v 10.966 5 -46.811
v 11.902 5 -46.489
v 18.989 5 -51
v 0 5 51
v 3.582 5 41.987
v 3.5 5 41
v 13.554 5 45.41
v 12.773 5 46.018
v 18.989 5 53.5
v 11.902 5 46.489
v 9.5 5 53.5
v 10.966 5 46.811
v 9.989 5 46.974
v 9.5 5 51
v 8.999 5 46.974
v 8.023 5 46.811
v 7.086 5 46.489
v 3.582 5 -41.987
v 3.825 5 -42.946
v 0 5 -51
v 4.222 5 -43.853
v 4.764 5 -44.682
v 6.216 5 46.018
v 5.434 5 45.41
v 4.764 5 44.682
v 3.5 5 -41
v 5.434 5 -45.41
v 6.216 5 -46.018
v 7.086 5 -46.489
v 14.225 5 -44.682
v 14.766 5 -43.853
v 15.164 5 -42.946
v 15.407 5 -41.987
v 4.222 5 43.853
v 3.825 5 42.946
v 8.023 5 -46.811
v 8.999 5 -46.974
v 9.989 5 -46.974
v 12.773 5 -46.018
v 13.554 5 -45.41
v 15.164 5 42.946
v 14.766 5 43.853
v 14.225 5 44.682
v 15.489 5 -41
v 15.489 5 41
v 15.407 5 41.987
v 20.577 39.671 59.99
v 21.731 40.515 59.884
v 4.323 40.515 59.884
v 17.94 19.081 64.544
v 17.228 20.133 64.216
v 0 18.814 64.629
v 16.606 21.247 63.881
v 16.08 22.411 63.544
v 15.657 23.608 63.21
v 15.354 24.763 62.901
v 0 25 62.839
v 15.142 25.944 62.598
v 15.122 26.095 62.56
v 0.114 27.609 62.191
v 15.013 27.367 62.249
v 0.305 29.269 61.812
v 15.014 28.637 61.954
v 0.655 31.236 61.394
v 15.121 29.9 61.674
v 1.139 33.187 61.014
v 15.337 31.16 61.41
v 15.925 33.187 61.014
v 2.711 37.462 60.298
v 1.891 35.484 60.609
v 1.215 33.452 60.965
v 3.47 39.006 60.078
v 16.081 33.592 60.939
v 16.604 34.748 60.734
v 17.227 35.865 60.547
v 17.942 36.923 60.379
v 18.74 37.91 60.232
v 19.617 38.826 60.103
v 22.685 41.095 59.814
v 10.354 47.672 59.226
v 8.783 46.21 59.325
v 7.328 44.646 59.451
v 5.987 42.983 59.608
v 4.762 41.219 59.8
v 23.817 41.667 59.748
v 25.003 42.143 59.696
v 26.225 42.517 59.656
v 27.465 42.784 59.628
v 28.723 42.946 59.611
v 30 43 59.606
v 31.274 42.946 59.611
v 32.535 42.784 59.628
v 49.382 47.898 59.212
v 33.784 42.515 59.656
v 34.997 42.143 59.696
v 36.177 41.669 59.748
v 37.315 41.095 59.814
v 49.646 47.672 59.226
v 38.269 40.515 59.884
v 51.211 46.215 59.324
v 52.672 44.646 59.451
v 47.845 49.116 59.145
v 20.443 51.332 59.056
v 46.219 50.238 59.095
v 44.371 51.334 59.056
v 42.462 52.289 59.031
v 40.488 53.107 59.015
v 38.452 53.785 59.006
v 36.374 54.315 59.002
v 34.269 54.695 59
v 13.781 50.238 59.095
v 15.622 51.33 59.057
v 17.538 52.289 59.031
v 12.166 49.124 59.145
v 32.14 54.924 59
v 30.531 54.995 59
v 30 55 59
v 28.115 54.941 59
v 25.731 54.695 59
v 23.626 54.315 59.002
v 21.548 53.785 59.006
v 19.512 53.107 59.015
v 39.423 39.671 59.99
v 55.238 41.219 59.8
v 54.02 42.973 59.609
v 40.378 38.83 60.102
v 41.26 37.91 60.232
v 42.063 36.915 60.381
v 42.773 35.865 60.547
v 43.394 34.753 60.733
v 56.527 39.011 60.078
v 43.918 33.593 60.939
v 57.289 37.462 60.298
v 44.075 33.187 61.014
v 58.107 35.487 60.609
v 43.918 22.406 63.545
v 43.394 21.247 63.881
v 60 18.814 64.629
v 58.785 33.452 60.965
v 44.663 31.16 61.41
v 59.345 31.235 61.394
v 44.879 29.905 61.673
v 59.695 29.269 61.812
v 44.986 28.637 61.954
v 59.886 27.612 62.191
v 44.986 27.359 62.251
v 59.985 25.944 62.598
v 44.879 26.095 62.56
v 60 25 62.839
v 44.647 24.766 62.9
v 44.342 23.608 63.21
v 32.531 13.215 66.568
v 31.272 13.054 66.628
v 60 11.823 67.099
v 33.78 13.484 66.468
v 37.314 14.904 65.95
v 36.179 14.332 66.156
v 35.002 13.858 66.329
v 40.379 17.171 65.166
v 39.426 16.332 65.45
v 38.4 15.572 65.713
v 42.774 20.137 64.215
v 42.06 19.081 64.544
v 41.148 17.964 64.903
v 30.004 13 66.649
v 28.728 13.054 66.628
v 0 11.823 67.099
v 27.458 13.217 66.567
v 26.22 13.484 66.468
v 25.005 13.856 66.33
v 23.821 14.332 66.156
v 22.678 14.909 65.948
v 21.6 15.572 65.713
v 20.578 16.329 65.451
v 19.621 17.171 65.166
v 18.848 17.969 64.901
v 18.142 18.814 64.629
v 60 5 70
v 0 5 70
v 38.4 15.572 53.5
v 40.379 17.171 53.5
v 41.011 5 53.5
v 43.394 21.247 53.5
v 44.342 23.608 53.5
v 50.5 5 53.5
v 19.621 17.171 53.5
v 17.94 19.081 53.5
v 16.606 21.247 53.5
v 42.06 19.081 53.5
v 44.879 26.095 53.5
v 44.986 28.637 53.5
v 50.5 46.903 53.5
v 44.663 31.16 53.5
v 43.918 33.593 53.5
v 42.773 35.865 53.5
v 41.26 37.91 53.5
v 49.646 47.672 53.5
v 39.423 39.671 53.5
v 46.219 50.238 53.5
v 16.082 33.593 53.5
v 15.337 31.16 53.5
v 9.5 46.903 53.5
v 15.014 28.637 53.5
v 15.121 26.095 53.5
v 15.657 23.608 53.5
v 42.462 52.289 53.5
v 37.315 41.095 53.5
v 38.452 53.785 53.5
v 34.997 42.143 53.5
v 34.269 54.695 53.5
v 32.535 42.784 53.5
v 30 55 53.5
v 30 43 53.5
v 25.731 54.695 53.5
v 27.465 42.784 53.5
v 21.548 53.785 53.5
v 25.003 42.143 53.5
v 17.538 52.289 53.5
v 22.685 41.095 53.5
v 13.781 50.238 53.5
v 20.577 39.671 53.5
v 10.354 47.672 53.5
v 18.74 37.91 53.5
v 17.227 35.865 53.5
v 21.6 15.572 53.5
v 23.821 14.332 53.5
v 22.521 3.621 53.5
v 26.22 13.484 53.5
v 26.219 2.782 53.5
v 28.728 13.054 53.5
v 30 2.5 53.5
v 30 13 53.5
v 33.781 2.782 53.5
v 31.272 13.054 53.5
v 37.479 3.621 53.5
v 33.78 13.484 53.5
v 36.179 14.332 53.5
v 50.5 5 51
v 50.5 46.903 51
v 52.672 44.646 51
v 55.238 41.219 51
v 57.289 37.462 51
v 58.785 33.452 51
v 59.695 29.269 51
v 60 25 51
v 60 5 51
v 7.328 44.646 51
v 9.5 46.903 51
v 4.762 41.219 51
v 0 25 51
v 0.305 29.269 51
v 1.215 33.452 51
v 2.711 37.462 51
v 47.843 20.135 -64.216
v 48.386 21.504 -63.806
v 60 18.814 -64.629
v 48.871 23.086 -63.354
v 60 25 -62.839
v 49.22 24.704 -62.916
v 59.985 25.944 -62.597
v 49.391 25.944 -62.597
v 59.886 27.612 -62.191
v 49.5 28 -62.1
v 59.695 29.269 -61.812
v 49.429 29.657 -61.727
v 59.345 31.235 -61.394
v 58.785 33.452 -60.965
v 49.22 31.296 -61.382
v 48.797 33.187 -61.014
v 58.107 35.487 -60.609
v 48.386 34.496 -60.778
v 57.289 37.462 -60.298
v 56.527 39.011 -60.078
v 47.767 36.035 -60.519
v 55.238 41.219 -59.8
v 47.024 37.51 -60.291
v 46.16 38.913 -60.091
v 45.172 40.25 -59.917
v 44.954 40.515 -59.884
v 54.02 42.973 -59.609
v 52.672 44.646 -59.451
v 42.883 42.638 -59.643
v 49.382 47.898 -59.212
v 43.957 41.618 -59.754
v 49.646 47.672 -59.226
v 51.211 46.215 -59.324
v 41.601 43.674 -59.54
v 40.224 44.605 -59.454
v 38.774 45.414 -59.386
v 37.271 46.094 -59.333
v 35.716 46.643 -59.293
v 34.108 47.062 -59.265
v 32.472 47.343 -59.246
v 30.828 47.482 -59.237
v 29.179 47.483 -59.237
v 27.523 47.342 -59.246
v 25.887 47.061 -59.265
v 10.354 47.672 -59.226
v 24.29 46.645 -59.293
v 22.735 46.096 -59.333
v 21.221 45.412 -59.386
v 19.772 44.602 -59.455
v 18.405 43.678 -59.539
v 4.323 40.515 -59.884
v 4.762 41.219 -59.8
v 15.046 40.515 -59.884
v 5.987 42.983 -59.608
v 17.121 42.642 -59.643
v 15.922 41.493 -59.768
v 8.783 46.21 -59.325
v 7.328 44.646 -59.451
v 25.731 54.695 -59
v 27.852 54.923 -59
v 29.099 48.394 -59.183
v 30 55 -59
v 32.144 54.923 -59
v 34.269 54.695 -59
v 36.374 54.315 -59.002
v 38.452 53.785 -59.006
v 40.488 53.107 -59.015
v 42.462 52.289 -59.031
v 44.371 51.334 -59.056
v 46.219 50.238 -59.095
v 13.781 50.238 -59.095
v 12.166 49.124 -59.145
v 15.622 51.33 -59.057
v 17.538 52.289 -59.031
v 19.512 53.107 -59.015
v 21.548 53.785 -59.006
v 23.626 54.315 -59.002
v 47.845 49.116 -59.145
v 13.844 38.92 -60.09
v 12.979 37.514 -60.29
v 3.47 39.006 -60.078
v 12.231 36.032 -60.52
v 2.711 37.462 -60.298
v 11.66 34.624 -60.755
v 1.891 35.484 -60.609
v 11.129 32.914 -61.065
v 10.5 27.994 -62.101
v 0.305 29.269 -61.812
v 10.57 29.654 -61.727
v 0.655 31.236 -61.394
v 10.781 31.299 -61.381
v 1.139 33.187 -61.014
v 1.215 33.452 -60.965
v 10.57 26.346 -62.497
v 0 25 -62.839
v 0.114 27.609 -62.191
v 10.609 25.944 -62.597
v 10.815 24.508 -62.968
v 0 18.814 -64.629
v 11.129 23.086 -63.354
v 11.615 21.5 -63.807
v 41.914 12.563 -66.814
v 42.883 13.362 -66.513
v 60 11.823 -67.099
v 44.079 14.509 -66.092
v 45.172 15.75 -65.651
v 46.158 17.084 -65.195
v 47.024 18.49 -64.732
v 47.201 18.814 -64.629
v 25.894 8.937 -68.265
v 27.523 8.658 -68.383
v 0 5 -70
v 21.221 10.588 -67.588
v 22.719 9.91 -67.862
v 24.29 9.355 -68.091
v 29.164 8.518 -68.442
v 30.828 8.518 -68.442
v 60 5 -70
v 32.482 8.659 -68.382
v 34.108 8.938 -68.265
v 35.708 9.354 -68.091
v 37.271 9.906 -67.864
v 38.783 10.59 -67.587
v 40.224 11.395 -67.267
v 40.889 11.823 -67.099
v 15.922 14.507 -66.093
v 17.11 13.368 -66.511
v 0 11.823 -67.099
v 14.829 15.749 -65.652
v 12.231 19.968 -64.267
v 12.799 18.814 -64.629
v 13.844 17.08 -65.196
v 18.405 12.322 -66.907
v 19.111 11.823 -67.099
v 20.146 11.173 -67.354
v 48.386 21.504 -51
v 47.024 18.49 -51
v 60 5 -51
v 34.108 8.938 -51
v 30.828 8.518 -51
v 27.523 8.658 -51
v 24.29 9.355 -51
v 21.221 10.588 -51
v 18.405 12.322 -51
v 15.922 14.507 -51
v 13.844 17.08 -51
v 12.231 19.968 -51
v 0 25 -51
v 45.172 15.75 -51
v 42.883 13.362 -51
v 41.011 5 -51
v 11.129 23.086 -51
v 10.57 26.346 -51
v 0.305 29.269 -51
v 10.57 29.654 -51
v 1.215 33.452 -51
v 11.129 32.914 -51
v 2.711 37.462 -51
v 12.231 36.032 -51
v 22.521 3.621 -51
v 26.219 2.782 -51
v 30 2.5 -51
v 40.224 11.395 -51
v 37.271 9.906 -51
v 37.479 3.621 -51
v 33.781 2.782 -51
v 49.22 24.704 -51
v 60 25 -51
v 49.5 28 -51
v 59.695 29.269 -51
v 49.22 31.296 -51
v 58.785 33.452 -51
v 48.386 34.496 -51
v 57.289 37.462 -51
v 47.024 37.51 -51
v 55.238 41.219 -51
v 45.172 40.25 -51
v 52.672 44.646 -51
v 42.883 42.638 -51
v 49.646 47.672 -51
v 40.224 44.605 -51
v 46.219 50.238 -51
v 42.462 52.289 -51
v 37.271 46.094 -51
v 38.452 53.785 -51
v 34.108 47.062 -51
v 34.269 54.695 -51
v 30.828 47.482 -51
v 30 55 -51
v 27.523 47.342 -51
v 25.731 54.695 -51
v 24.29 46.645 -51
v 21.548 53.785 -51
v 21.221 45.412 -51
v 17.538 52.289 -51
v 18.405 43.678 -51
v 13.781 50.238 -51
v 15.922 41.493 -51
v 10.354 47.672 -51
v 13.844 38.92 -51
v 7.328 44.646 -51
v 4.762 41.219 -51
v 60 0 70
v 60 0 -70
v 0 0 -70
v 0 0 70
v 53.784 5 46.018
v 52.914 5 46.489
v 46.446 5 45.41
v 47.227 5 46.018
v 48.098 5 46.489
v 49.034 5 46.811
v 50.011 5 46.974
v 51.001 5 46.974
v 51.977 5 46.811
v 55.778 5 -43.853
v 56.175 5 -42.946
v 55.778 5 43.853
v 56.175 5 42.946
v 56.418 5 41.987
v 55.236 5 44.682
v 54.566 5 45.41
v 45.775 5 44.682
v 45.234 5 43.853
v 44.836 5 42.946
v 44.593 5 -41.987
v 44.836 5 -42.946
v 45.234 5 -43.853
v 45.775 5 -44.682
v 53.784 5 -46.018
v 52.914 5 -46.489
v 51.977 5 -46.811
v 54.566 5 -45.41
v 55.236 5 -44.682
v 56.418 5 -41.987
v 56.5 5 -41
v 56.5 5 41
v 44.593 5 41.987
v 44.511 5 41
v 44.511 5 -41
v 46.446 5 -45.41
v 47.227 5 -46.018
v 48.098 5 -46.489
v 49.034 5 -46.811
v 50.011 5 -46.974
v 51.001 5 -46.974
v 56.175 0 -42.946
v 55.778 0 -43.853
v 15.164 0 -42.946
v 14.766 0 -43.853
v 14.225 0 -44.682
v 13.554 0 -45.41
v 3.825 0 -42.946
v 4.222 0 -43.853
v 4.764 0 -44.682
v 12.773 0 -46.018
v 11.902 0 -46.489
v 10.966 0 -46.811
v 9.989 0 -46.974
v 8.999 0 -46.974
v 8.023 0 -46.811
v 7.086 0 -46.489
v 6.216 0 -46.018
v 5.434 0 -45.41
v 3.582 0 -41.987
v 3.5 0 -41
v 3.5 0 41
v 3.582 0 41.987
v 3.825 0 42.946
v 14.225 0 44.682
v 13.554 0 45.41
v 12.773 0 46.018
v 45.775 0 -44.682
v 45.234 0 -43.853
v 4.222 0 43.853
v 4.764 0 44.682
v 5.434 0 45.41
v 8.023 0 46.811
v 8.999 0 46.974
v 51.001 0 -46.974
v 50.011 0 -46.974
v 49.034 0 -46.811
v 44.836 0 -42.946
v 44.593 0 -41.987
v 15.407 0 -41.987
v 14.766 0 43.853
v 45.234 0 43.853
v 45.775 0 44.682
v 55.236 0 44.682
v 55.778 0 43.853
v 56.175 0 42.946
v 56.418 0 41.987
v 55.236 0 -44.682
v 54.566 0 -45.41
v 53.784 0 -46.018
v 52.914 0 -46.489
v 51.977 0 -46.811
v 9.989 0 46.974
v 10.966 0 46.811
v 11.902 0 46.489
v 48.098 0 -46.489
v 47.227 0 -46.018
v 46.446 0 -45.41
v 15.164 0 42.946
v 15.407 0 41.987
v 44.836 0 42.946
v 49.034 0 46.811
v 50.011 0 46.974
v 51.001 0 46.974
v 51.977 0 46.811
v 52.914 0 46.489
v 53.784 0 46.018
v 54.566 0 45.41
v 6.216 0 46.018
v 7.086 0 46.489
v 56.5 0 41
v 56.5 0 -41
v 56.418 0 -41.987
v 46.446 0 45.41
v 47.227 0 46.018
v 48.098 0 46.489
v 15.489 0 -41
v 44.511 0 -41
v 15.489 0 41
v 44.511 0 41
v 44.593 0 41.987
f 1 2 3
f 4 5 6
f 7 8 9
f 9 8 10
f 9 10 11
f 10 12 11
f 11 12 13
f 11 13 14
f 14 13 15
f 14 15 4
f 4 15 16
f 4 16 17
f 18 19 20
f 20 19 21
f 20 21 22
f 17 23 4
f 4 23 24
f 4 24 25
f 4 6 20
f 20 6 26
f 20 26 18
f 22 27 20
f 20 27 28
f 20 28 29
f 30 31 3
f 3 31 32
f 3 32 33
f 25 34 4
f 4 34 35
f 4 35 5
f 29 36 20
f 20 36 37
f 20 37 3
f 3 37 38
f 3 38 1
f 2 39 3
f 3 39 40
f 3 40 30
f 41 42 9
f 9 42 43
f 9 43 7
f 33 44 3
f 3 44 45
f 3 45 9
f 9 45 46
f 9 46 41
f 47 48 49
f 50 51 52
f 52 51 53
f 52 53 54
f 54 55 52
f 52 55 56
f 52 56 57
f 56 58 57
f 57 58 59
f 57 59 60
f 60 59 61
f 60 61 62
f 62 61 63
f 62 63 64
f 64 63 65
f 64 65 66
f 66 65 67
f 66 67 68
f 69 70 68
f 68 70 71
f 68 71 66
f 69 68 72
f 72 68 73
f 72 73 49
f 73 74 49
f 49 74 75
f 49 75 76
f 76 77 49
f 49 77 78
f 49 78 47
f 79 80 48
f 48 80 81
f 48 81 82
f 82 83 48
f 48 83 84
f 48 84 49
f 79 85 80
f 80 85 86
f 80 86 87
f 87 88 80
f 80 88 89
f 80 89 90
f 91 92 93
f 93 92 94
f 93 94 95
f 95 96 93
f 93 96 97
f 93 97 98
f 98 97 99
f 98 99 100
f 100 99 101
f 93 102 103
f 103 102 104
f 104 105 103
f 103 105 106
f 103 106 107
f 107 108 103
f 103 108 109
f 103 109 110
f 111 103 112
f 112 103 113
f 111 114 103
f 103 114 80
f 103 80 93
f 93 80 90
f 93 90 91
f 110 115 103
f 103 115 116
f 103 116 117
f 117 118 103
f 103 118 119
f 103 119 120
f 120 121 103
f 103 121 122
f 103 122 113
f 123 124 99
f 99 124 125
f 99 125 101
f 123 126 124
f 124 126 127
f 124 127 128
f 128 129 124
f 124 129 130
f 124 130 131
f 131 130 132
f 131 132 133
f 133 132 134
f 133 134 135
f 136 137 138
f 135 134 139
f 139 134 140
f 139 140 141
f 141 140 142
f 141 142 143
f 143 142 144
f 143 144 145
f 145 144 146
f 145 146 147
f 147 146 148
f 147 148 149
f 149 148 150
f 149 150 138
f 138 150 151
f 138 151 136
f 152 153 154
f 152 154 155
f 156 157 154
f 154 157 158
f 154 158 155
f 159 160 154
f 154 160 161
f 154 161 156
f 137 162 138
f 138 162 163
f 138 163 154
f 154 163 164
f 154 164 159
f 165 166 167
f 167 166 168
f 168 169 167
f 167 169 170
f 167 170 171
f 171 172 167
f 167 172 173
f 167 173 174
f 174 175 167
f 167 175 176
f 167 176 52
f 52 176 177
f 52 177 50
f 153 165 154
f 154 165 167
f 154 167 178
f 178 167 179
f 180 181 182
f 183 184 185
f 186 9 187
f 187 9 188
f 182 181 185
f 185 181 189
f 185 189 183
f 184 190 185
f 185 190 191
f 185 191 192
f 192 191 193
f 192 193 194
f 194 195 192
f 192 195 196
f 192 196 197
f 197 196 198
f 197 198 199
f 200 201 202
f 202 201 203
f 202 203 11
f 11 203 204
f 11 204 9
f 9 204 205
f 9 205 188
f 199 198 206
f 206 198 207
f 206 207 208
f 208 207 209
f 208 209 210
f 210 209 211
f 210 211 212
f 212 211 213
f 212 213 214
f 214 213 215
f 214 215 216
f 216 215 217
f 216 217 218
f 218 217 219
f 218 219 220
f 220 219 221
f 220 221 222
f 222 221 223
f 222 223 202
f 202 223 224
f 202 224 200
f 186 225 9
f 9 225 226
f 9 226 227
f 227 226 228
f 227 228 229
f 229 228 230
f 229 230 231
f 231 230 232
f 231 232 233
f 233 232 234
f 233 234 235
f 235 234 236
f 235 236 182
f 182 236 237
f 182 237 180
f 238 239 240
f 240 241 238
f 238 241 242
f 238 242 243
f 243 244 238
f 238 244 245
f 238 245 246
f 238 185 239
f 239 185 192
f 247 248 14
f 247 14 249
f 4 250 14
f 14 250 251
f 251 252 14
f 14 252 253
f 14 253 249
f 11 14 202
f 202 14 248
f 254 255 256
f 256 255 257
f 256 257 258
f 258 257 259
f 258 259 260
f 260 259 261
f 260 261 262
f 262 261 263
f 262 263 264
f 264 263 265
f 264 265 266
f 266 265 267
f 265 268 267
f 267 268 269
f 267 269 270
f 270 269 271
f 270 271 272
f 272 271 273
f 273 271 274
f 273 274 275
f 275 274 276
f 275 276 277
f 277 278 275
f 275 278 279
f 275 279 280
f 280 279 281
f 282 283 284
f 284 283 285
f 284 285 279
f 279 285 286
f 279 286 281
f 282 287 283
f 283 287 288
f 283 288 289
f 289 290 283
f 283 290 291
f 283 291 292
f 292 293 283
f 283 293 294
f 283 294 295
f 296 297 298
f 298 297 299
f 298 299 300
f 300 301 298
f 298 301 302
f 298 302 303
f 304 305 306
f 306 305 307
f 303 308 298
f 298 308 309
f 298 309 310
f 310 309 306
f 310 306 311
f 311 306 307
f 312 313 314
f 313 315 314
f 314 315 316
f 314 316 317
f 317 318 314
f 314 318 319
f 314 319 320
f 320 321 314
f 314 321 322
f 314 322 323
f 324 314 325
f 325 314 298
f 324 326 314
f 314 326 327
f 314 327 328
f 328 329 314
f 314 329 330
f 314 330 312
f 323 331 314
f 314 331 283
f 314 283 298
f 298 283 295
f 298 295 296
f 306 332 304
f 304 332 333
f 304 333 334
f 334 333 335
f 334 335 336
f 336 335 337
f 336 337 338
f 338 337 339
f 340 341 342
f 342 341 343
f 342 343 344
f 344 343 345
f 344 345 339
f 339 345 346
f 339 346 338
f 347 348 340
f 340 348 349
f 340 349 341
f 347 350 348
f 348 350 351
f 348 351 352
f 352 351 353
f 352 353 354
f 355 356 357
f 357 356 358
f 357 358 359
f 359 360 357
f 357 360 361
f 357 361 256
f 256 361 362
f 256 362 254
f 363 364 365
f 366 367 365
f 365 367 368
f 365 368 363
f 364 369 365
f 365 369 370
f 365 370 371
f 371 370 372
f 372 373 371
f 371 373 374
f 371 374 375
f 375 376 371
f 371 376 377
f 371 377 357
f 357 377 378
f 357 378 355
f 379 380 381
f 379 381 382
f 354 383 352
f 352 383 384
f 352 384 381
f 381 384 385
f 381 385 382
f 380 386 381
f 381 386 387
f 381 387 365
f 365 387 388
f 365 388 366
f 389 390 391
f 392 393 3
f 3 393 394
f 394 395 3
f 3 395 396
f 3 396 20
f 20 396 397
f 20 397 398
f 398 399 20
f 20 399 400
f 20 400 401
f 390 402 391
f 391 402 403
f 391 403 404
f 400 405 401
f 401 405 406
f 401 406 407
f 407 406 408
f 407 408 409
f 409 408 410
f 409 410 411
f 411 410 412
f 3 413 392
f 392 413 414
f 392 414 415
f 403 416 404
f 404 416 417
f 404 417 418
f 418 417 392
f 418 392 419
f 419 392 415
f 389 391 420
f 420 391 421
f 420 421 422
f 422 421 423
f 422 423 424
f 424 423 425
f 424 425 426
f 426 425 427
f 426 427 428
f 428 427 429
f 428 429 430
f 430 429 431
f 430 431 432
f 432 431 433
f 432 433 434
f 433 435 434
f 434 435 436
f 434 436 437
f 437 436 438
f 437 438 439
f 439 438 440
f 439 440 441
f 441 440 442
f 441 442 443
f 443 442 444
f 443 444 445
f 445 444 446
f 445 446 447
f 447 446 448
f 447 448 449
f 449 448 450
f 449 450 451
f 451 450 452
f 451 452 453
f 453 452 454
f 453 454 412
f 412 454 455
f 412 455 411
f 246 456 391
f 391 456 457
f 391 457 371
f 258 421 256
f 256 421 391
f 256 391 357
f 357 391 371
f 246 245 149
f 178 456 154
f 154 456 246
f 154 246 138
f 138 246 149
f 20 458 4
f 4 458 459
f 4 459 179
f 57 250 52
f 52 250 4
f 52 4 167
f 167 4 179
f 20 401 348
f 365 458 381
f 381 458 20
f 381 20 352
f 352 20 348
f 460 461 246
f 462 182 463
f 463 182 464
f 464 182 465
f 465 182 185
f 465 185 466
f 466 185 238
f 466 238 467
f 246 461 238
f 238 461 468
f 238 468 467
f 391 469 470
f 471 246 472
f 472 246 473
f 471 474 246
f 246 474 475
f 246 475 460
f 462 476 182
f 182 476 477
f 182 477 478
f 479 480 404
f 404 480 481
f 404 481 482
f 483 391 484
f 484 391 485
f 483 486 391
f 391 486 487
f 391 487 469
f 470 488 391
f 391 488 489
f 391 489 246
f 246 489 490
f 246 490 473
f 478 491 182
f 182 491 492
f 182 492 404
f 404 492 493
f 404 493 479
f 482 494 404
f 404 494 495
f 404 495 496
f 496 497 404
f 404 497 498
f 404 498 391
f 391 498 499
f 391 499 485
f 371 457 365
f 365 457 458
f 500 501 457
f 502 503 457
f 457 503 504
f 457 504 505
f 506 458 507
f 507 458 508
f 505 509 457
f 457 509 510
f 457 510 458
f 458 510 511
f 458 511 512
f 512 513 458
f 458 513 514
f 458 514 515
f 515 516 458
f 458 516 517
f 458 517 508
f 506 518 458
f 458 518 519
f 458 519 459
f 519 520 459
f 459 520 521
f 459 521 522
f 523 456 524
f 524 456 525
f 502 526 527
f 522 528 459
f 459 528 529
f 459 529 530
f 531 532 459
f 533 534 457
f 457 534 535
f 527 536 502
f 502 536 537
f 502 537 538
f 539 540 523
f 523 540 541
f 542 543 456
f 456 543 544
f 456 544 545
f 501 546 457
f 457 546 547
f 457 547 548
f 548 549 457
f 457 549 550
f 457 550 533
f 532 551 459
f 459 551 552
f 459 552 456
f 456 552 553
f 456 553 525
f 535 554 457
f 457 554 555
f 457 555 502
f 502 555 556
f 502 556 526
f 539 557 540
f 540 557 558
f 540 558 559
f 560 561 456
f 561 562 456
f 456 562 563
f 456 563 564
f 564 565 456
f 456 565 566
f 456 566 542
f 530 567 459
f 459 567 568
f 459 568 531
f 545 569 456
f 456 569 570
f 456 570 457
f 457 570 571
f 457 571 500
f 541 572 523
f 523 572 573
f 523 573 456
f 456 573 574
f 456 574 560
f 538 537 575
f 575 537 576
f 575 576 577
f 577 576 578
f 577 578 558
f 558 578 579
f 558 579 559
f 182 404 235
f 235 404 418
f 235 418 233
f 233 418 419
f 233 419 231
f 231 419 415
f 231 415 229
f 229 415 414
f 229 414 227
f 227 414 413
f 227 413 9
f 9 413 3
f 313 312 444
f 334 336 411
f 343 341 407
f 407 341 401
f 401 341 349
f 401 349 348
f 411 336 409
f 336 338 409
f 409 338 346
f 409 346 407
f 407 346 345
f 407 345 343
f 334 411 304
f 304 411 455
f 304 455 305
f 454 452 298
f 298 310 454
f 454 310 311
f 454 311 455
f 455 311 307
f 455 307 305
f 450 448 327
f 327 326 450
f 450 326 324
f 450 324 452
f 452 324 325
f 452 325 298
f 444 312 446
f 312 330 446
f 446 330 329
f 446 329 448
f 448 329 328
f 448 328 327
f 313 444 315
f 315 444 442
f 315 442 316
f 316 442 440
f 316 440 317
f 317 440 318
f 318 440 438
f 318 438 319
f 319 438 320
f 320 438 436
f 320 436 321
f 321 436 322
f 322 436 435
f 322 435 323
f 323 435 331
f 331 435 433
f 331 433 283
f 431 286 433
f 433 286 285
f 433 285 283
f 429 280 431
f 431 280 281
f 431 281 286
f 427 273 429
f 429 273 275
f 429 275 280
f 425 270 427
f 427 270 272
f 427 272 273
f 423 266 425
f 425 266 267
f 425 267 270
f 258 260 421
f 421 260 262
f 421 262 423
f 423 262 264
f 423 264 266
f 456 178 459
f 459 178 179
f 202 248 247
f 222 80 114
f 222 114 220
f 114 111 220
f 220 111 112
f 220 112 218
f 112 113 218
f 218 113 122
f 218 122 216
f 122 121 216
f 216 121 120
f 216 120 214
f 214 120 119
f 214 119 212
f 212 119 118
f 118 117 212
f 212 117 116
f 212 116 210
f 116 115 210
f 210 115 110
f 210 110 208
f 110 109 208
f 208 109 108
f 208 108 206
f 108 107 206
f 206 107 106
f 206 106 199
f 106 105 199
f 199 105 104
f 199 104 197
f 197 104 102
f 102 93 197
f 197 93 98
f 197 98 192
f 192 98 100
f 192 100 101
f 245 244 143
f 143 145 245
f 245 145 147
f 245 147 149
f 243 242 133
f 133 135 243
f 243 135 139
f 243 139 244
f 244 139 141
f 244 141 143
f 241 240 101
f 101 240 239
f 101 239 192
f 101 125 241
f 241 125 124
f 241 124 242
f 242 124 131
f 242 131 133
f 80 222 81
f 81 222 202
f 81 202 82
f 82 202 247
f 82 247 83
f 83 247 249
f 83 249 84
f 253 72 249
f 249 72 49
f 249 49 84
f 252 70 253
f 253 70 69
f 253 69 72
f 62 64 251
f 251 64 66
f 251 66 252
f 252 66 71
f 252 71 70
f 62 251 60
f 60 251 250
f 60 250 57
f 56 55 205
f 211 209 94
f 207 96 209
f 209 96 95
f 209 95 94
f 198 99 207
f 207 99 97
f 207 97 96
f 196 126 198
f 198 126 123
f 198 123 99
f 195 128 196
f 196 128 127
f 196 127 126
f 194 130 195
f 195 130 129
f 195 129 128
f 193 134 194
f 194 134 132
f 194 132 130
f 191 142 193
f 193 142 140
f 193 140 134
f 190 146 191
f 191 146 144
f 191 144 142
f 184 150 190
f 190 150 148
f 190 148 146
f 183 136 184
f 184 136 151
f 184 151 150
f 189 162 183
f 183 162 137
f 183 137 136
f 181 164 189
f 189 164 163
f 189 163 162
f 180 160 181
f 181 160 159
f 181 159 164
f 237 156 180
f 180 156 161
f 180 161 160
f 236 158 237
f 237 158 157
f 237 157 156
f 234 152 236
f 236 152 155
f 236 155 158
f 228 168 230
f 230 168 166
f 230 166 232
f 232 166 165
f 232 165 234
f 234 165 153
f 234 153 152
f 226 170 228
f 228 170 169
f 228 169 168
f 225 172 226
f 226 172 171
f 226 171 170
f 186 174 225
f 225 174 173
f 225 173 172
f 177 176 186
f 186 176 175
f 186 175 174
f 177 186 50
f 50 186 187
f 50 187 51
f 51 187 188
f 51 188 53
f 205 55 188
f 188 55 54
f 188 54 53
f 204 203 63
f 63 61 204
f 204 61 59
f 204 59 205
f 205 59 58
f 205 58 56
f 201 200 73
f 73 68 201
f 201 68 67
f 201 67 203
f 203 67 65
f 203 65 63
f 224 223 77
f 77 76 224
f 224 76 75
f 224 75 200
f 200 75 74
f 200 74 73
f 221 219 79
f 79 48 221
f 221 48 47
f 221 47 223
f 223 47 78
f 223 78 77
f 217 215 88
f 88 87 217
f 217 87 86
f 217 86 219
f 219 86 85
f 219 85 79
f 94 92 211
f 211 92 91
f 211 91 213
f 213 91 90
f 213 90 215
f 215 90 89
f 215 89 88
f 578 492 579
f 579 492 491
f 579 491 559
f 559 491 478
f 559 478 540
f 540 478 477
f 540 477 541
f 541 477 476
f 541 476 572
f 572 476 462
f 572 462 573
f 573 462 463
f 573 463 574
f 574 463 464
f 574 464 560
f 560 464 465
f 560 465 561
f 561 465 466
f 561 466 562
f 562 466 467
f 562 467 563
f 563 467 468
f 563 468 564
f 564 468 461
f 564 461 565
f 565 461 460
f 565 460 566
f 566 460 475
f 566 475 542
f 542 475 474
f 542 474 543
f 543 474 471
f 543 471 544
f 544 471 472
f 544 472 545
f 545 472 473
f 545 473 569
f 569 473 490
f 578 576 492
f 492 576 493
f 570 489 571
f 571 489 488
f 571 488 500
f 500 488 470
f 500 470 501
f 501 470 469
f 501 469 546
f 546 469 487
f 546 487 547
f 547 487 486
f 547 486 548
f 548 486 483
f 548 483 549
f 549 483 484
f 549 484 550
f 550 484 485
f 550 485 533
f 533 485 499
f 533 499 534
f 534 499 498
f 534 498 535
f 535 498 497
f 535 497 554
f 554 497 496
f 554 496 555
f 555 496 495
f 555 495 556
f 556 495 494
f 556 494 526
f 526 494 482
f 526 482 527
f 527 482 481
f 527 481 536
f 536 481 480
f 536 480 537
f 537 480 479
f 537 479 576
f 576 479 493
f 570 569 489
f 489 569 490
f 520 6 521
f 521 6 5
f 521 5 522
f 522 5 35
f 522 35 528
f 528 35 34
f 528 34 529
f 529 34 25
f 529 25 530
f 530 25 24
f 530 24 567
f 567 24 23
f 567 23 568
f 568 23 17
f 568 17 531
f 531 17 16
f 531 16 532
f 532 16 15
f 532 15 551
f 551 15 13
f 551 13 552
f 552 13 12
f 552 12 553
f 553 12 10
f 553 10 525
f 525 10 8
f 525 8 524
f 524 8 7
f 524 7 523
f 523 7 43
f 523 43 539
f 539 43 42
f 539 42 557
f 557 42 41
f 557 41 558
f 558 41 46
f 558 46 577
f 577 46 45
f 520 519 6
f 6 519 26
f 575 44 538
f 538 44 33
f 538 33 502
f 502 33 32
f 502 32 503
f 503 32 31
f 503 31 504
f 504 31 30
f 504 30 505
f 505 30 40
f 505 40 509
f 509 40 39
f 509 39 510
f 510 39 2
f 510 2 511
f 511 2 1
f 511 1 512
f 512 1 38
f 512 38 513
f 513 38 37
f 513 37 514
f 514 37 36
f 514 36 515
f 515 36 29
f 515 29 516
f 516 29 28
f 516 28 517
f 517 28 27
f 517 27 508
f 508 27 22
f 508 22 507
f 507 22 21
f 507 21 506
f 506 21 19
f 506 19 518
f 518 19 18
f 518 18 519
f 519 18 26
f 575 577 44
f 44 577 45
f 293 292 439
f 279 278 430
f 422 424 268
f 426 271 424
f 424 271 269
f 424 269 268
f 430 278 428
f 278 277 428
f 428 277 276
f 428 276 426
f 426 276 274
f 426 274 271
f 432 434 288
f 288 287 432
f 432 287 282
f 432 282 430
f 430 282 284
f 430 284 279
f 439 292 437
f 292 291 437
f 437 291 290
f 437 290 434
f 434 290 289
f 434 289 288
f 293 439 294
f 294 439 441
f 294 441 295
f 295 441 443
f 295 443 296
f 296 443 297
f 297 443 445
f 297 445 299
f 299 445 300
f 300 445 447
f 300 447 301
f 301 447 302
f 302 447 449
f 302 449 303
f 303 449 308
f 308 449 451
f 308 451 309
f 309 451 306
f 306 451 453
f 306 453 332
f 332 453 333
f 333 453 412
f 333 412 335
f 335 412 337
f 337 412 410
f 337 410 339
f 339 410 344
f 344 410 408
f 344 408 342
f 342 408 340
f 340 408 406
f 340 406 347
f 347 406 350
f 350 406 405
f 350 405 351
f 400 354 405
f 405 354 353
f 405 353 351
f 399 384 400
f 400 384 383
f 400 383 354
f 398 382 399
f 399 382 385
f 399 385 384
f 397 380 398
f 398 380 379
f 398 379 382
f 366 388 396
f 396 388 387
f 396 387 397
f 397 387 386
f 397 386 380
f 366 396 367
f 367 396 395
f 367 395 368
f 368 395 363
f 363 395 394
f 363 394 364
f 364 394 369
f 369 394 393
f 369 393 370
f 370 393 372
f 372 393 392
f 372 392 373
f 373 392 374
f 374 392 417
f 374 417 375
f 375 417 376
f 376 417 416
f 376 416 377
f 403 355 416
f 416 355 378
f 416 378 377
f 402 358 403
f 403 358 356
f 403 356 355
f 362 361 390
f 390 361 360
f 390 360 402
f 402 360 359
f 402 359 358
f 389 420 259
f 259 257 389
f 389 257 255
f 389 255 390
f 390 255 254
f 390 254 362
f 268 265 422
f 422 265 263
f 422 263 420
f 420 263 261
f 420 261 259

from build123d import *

# Parameters (mm, degrees)
RESSALTO_EXTRUS_O1_DEPTH = 60
ESBO_O2_R                = 25.5
CORTE_EXTRUS_O1_DEPTH    = 97.052069212
ESBO_O3_R                = 17.5
CORTE_EXTRUS_O2_DEPTH    = 97.052069212
CORTE_EXTRUS_O3_DEPTH    = 60
ESBO_O7_W                = 41
ESBO_O7_H                = 2.5
CORTE_EXTRUS_O6_DEPTH    = 50
ESBO_O6_R                = 15
CORTE_EXTRUS_O7_DEPTH    = 146.828666754
CORTE_EXTRUS_O8_DEPTH    = 53.5
CORTE_EXTRUS_O9_DEPTH    = 105.880884989
ESBO_O9_R                = 19.5
CORTE_EXTRUS_O10_DEPTH   = 146.828666754


with BuildPart() as part:
    # Esboço1 → Ressalto-extrusão1 (new body)
    with BuildSketch(Plane(origin=(0, 0, 0), x_dir=(0, 0, -1), z_dir=(1, 0, 0))):
        with BuildLine():
            Line((0, 0), (70, 0))
            Line((70, 0), (70, 5))
            ThreePointArc((70, 5), (61.782493308, 29.402148528), (59, 55))
            Line((59, 55), (51, 55))
            Line((51, 55), (51, 5))
            Line((51, 5), (0, 5))
            Line((0, 5), (0, 0))
        make_face()
    ressalto_extrus_o1 = extrude(amount=RESSALTO_EXTRUS_O1_DEPTH)

    # Esboço2 → Corte-extrusão1 (cut, through all)
    with BuildSketch(Plane.XY.offset(-51)):
        with Locations((30, 28)):
            Circle(ESBO_O2_R)
    extrude(amount=CORTE_EXTRUS_O1_DEPTH, mode=Mode.SUBTRACT)

    # Esboço3 → Corte-extrusão2 (cut, through all)
    with BuildSketch(Plane.XY.offset(-51)):
        with Locations((30, 28)):
            Circle(ESBO_O3_R)
    extrude(amount=-CORTE_EXTRUS_O2_DEPTH, mode=Mode.SUBTRACT)

    # Esboço4 → Corte-extrusão3 (cut)
    with BuildSketch(Plane.XY.offset(-51)):
        with BuildLine():
            ThreePointArc((0, 25), (8.786796564, 46.213203436), (30, 55))
            Line((30, 55), (0, 55))
            Line((0, 55), (0, 25))
        make_face()
        with BuildLine():
            Line((60, 25), (60, 55))
            Line((60, 55), (30, 55))
            ThreePointArc((30, 55), (51.213203436, 46.213203436), (60, 25))
        make_face()
    extrude(amount=-CORTE_EXTRUS_O3_DEPTH, mode=Mode.SUBTRACT)

    # Espelhar2: Ressalto-extrusão1 across plane
    add(ressalto_extrus_o1.mirror(Plane(origin=(60, 5, 0), x_dir=(1, 0, 0), z_dir=(0, 0, -1))))

    # Esboço7 → Corte-extrusão6 (cut)
    with BuildSketch(Plane(origin=(0, 55, 0), x_dir=(1, 0, 0), z_dir=(0, 1, 0))):
        with Locations((30, -52.25)):
            Rectangle(ESBO_O7_W, ESBO_O7_H)
    extrude(amount=-CORTE_EXTRUS_O6_DEPTH, mode=Mode.SUBTRACT)

    # Esboço6 → Corte-extrusão7 (cut, through all)
    with BuildSketch(Plane(origin=(0, 0, 51), x_dir=(-1, 0, 0), z_dir=(0, 0, -1))):
        with BuildLine():
            Line((-60, 55), (-60, 25))
            ThreePointArc((-60, 25), (-51.213203436, 46.213203436), (-30, 55))
            Line((-30, 55), (-60, 55))
        make_face()
        with BuildLine():
            Line((0, 55), (-30, 55))
            ThreePointArc((-30, 55), (-8.786796564, 46.213203436), (0, 25))
            Line((0, 25), (0, 55))
        make_face()
        with Locations(Location((-30, 28, 0), (0, 0, 90))):
            Circle(ESBO_O6_R)
    extrude(amount=-CORTE_EXTRUS_O7_DEPTH, mode=Mode.SUBTRACT)

    # Esboço5 → Corte-extrusão8 (cut)
    with BuildSketch(Plane(origin=(0, 0, 0), x_dir=(-1, 0, 0), z_dir=(0, 0, -1))):
        with BuildLine():
            Line((-18.988642227, 5), (-41.011357773, 5))
            ThreePointArc((-41.011357773, 5), (-30, 2.5), (-18.988642227, 5))
        make_face()
    extrude(amount=-CORTE_EXTRUS_O8_DEPTH, mode=Mode.SUBTRACT)

    # Esboço8 → Corte-extrusão9 (cut, through all)
    with BuildSketch(Plane(origin=(0, 5, 0), x_dir=(1, 0, 0), z_dir=(0, 1, 0))):
        with BuildLine():
            Line((3.5, -41), (3.5, 41))
            ThreePointArc((3.5, 41), (9.494321114, 46.994321114), (15.488642227, 41))
            Line((15.488642227, 41), (15.488642227, -41))
            ThreePointArc((15.488642227, -41), (9.494321114, -46.994321114), (3.5, -41))
        make_face()
        with BuildLine():
            Line((56.5, -41), (56.5, 41))
            ThreePointArc((56.5, 41), (50.505678886, 46.994321114), (44.511357773, 41))
            Line((44.511357773, 41), (44.511357773, -41))
            ThreePointArc((44.511357773, -41), (50.505678886, -46.994321114), (56.5, -41))
        make_face()
    extrude(amount=-CORTE_EXTRUS_O9_DEPTH, mode=Mode.SUBTRACT)

    # Esboço9 → Corte-extrusão10 (cut, through all)
    with BuildSketch(Plane.XY.offset(-51)):
        with Locations((30, 28)):
            Circle(ESBO_O9_R)
    extrude(amount=-CORTE_EXTRUS_O10_DEPTH, mode=Mode.SUBTRACT)


solid = part.part
